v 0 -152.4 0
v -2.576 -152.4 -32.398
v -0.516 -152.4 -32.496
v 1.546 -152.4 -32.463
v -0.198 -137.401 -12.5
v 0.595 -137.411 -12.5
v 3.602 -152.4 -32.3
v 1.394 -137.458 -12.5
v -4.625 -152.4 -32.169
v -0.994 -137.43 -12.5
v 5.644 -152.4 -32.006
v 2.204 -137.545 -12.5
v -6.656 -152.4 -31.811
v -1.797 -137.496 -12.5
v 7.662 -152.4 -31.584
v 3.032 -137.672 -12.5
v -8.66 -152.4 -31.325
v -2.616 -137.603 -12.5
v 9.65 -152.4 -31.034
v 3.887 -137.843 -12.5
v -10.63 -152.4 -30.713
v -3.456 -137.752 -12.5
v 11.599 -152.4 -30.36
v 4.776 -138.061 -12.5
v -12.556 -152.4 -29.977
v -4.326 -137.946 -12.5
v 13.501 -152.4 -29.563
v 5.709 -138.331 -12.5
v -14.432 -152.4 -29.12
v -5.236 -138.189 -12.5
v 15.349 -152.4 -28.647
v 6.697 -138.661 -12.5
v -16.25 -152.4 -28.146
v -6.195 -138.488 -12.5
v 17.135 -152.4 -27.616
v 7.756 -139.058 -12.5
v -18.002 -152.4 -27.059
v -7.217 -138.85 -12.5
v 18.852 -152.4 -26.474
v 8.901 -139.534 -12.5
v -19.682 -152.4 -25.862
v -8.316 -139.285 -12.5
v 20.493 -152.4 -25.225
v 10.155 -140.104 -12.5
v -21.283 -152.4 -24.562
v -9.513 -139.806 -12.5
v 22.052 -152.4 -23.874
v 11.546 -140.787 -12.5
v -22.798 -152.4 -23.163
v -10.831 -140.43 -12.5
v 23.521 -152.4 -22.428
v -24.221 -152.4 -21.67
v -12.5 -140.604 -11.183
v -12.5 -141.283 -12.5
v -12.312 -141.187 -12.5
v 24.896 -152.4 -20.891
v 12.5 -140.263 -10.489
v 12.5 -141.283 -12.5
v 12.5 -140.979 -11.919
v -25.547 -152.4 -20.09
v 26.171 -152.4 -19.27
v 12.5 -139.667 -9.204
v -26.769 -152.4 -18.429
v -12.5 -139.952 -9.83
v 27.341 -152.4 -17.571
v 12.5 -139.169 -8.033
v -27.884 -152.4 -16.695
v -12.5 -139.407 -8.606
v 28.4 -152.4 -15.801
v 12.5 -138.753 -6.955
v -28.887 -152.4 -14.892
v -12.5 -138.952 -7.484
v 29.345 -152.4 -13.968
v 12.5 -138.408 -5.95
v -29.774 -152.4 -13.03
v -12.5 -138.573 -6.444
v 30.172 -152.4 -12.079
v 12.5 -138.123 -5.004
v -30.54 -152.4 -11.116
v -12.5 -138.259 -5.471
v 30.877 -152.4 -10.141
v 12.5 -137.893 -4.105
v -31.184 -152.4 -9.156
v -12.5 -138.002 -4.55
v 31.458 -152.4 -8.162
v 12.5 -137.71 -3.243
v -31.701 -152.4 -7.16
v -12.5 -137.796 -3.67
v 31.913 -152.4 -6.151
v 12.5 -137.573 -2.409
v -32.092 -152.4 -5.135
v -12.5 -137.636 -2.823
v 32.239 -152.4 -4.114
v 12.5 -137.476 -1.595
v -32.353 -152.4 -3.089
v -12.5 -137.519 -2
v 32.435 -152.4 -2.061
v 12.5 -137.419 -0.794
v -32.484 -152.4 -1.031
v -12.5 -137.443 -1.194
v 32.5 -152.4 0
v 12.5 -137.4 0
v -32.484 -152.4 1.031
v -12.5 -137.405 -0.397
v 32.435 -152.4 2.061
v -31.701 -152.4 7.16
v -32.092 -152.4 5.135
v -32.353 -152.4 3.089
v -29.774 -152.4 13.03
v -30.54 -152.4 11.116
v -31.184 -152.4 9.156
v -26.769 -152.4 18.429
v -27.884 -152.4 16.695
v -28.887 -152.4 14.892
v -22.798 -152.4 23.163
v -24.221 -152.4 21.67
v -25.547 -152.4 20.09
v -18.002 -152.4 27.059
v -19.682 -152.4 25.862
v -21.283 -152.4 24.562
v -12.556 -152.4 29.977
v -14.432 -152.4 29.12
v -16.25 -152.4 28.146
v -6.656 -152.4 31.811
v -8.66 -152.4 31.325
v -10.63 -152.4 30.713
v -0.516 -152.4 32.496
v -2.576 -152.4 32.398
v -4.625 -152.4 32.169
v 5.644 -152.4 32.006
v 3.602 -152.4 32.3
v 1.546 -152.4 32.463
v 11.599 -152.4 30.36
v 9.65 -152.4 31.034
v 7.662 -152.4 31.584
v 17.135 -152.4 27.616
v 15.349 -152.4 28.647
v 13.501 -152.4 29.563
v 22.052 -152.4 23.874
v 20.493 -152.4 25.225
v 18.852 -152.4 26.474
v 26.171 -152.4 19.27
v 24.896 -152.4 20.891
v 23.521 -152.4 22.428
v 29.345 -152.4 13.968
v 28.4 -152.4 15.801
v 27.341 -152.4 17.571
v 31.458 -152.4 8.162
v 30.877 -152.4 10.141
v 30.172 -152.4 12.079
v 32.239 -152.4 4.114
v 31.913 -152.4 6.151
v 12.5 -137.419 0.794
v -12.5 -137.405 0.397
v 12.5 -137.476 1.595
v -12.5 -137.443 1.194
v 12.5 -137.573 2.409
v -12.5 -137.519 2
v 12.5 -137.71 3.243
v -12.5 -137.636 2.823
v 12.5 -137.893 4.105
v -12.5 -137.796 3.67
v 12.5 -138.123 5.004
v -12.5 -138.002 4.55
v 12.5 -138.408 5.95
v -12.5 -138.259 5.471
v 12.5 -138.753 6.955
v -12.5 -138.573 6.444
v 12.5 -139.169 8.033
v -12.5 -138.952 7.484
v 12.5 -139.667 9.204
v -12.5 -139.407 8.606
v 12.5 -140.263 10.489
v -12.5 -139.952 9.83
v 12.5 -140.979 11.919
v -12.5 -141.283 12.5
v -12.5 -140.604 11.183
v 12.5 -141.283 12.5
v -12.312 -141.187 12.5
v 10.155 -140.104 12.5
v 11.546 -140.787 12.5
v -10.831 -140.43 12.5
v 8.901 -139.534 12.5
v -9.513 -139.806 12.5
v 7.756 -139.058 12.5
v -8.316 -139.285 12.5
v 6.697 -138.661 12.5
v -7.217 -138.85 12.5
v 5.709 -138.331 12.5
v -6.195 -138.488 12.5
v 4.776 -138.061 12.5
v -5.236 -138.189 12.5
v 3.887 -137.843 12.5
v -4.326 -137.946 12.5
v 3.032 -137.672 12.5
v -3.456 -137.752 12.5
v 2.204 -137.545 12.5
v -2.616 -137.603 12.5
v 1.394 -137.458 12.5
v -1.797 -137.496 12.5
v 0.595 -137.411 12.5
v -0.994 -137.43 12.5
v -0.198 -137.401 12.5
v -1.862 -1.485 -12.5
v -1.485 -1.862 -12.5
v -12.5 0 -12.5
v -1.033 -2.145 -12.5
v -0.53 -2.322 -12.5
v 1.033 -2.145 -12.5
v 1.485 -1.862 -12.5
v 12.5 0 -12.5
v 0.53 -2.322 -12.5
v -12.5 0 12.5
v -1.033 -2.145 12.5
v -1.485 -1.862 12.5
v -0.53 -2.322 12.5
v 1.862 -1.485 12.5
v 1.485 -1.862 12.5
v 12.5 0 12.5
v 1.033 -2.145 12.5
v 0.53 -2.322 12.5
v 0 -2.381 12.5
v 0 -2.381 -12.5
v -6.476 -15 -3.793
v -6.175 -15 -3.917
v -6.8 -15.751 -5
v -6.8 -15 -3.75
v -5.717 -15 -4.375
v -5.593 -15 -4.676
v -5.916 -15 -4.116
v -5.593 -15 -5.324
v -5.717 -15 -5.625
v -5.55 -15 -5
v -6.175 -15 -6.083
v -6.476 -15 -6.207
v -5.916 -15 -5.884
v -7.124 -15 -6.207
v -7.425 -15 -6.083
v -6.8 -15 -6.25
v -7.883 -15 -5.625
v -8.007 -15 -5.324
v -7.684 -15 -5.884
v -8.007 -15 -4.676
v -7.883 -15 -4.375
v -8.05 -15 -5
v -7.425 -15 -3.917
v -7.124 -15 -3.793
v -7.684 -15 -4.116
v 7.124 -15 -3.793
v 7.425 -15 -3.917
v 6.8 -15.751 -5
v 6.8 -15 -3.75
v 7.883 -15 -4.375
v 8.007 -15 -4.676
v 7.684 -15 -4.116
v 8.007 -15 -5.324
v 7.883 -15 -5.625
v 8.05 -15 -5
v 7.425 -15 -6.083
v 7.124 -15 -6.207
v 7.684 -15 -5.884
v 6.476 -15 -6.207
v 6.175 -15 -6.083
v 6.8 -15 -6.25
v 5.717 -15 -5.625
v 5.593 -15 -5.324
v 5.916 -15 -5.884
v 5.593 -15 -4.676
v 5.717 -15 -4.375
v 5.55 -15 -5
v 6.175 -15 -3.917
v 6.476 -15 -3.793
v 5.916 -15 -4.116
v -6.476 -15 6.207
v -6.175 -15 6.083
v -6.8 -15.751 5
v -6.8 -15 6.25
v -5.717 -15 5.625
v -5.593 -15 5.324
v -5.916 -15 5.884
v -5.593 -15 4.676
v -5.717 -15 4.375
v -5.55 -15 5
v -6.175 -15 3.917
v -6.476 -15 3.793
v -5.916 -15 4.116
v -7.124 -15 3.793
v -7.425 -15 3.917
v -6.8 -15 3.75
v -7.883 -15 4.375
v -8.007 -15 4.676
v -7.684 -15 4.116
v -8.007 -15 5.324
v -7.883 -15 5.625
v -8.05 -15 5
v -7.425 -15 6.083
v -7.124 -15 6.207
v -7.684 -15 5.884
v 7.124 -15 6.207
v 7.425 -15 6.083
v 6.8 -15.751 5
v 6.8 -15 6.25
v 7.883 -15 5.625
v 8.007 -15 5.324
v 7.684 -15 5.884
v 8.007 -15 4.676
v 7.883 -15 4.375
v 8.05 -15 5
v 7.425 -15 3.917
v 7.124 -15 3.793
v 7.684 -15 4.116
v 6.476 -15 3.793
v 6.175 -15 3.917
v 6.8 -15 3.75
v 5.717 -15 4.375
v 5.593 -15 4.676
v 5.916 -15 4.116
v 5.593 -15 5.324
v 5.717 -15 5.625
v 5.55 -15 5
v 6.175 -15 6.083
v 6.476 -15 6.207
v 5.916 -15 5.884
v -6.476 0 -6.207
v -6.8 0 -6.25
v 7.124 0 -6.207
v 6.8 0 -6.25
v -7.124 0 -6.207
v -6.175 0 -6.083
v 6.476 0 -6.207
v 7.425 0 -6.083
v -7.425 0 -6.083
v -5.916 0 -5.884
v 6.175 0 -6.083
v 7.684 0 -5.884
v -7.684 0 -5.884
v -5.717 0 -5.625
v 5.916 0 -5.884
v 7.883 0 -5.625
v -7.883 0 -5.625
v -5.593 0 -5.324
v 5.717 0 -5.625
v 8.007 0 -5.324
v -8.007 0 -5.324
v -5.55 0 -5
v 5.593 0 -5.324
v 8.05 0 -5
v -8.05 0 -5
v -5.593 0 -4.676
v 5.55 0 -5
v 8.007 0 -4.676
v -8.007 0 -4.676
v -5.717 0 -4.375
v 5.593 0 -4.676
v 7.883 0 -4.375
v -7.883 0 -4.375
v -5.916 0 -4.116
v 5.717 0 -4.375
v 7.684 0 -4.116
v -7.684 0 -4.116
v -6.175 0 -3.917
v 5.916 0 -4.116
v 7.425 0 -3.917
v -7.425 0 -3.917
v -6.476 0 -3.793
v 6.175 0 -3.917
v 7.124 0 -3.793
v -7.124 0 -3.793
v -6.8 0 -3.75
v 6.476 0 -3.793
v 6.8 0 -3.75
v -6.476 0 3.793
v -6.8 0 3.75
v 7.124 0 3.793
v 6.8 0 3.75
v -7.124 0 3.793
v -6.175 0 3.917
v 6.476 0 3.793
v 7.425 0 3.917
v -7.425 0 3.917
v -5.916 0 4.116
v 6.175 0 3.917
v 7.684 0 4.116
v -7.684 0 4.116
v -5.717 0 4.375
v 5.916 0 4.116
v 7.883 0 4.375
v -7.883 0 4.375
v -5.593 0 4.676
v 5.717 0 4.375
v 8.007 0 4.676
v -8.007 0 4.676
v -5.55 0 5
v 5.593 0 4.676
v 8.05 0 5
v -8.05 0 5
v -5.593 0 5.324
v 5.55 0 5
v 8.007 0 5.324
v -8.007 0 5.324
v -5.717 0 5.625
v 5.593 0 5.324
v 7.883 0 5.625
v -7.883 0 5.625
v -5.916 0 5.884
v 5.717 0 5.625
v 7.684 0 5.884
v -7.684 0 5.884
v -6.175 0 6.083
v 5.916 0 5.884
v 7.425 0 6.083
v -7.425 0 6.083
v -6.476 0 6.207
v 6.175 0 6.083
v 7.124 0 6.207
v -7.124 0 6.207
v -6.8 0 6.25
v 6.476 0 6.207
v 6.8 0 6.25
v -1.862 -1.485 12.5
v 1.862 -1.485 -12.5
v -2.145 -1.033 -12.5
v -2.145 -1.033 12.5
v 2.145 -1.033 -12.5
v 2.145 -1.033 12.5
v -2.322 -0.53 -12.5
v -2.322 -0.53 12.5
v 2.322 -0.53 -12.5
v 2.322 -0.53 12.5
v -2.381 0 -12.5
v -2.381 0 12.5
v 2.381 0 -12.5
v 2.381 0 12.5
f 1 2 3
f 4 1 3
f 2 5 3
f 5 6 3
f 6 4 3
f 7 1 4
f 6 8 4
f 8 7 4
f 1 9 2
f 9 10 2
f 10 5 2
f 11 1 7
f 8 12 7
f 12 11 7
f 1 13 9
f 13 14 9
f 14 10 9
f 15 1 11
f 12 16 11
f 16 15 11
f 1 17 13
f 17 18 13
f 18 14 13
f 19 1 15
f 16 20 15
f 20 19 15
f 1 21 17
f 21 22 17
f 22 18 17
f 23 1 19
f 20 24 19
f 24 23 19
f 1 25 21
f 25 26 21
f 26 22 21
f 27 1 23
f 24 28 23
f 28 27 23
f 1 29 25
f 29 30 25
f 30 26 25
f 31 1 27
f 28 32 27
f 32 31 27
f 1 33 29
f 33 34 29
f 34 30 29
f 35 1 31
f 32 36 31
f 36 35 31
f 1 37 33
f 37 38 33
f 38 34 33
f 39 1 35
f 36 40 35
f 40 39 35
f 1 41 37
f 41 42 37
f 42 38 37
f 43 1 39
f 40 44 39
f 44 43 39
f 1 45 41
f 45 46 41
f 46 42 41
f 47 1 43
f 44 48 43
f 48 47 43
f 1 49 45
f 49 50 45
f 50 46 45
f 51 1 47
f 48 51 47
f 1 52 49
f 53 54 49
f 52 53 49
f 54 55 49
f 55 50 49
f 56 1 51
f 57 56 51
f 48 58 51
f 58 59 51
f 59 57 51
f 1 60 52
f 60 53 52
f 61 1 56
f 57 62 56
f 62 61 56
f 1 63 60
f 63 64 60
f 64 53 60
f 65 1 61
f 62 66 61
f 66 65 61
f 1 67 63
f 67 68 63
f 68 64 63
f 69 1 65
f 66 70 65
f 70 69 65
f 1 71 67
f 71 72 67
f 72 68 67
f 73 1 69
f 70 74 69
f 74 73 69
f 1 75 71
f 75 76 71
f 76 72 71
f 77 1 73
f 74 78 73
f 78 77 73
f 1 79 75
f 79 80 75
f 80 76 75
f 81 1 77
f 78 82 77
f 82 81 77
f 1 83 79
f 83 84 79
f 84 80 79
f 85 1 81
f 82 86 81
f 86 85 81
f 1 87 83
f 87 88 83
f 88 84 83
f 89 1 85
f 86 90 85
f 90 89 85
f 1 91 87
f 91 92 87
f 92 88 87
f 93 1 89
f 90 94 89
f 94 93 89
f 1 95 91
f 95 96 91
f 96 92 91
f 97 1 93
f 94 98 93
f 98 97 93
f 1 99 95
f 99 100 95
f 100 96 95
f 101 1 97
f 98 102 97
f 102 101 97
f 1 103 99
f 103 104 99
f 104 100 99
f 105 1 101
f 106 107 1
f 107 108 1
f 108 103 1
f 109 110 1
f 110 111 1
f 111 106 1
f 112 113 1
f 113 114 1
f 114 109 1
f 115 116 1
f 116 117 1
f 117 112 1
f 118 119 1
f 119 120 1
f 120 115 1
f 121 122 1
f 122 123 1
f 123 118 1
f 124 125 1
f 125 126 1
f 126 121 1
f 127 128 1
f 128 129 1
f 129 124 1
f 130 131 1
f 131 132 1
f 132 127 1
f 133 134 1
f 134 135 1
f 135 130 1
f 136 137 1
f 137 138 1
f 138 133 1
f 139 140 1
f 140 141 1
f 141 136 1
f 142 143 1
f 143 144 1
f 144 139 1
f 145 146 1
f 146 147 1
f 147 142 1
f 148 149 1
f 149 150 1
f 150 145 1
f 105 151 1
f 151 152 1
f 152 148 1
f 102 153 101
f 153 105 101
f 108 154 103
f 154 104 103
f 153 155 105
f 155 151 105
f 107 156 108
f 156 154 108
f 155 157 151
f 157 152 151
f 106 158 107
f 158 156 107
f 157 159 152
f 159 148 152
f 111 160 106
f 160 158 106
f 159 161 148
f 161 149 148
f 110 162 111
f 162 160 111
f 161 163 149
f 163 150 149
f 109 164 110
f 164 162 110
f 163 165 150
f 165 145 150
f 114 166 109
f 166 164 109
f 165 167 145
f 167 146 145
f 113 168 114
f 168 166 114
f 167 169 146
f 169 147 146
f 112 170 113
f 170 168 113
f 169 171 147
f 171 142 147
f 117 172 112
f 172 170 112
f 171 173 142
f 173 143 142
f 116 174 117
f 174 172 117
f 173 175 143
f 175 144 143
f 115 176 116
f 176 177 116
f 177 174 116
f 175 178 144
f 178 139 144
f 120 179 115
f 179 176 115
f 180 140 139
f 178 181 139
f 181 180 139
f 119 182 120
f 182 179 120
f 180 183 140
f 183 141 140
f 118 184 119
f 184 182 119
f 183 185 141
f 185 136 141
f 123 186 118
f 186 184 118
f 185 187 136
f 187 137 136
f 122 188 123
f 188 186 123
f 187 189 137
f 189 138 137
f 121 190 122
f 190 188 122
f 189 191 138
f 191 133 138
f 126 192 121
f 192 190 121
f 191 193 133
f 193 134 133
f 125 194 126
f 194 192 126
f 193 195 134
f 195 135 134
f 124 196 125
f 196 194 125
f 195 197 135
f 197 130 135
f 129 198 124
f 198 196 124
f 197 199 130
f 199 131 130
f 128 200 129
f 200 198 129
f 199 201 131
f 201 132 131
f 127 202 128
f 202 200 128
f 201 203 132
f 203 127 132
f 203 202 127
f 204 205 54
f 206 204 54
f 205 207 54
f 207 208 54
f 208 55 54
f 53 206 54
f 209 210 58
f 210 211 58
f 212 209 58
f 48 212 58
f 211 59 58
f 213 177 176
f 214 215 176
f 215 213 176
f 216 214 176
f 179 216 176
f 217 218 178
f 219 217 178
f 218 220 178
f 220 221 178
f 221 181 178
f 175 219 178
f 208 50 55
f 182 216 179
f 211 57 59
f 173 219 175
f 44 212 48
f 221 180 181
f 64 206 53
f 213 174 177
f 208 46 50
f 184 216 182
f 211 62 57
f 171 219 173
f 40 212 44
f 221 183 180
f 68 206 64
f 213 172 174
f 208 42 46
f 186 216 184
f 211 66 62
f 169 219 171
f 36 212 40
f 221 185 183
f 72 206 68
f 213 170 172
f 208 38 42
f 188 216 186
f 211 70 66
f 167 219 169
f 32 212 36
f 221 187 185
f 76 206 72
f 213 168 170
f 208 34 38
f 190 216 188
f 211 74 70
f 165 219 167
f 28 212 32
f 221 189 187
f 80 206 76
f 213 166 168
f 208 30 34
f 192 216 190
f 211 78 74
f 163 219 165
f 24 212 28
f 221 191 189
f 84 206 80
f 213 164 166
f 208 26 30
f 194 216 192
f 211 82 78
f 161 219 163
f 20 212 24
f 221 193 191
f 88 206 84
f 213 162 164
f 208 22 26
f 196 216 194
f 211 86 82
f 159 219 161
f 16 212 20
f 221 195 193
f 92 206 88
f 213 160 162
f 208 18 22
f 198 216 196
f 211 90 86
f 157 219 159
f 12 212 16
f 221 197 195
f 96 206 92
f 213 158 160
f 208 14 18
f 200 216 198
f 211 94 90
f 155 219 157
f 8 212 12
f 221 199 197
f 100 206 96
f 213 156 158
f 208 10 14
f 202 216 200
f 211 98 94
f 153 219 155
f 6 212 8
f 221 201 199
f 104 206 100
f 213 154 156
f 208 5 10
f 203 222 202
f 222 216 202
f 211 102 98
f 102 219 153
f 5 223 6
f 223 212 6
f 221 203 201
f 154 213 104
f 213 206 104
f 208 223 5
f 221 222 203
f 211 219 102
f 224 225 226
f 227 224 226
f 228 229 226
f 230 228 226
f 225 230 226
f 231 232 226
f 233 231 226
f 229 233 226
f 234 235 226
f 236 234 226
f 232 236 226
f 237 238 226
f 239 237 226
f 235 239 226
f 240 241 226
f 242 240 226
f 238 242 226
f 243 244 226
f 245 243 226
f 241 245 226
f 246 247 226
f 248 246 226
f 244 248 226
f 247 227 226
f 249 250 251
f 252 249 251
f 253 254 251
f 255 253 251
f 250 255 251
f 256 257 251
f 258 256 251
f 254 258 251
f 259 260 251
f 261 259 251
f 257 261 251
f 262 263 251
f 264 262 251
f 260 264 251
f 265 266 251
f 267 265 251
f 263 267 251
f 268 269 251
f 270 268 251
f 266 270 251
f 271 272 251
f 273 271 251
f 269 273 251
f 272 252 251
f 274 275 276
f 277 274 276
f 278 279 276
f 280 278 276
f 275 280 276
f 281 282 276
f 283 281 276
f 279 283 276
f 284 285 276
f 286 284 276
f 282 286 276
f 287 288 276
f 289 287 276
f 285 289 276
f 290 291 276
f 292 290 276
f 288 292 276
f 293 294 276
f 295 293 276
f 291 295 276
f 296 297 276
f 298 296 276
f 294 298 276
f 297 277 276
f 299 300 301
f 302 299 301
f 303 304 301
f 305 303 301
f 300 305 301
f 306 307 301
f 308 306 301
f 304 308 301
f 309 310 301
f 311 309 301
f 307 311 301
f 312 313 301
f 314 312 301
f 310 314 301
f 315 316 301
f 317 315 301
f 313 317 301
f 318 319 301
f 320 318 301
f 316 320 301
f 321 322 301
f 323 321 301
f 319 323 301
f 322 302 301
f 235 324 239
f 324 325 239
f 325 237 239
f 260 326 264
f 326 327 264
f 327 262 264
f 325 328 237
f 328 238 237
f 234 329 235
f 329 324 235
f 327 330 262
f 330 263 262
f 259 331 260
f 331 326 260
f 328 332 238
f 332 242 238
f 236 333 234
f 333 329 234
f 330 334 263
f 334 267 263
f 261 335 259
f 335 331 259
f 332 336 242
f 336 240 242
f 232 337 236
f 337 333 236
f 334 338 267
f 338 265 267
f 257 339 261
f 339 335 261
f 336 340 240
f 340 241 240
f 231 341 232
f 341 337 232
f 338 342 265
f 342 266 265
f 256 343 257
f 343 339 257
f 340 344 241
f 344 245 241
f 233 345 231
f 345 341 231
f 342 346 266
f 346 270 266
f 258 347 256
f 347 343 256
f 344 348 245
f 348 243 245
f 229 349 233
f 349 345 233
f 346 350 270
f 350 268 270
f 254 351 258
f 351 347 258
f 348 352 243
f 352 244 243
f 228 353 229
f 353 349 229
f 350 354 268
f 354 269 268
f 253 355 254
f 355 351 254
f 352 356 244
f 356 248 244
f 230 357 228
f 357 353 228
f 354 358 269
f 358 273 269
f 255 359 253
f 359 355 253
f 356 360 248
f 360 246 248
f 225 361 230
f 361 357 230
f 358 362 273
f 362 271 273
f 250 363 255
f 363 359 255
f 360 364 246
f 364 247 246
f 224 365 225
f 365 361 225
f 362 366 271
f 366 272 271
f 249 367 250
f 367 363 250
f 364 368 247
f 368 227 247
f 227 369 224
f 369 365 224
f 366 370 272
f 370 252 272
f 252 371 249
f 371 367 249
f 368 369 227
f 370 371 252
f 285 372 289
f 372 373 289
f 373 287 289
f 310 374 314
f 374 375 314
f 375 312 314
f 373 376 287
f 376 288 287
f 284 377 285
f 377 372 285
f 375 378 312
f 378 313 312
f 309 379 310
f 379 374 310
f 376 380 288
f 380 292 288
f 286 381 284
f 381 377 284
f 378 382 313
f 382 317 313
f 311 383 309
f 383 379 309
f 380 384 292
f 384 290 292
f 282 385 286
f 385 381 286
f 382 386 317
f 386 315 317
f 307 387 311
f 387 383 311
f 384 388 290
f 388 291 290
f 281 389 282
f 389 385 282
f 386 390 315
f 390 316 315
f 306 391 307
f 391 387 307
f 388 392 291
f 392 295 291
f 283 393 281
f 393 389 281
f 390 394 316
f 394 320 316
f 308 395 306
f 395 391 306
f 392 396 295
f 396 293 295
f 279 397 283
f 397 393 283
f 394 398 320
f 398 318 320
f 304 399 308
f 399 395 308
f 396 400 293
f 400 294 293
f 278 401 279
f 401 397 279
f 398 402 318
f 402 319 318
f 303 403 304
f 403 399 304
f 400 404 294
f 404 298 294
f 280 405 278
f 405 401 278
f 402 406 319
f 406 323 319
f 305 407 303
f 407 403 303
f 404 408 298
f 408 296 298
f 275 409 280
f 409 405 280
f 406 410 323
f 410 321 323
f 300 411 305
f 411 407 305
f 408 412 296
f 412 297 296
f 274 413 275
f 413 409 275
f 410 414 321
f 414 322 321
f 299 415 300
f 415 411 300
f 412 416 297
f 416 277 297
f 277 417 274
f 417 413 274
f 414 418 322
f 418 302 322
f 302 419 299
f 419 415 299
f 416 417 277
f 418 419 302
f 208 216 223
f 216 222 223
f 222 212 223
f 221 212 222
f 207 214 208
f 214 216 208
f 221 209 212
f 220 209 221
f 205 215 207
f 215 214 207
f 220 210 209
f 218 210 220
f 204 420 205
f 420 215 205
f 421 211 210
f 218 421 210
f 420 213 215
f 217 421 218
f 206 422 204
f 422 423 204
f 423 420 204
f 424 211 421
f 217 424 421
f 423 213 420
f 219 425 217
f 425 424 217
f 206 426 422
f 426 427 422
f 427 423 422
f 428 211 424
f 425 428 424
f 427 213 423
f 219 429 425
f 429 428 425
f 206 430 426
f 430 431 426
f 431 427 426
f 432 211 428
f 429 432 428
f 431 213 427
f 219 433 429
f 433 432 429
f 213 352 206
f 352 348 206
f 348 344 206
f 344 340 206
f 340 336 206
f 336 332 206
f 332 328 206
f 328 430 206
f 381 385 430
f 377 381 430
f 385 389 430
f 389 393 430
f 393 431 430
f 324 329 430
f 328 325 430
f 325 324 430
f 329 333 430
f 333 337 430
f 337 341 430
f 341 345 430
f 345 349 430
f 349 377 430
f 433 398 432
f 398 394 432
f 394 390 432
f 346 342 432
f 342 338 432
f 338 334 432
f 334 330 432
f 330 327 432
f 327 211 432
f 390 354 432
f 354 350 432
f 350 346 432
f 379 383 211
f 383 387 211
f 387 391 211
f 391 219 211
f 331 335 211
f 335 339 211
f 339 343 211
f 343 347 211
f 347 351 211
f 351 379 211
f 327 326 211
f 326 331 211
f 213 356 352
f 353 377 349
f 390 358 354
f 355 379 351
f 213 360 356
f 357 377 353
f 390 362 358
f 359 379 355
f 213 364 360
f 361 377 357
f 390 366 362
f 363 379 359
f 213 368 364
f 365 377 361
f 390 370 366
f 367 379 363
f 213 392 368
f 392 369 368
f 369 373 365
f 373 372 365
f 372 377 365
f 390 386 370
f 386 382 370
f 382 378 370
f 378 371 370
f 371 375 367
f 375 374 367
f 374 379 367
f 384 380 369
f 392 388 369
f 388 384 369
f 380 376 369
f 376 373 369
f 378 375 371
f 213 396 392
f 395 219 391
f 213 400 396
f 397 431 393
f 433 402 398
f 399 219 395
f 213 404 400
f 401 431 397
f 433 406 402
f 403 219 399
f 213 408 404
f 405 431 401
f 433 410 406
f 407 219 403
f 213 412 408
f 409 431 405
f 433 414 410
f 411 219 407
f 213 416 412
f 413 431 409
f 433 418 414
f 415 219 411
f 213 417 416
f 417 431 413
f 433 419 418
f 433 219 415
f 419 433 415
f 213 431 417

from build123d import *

# Parameters (mm, degrees)
SKETCH1_W                       = 25
SKETCH1_H                       = 25
BOSS_EXTRUDE1_DEPTH             = 152.4
CUT_EXTRUDE1_REACH              = 47
SKETCH3_R                       = 2.38125
SKETCH4_R                       = 1
CUT_EXTRUDE2_DEPTH              = 10
TAP_DRILL_FOR_M3X0_5_TAP1_D     = 2.5
TAP_DRILL_FOR_M3X0_5_TAP1_DEPTH = 15
TAP_DRILL_FOR_M3X0_5_TAP1_TIP   = 0.751075774


with BuildPart() as part:
    # Sketch1 → Boss-Extrude1 (new body)
    with BuildSketch(Plane(origin=(0, 0, 0), x_dir=(1, 0, 0), z_dir=(0, 1, 0))):
        Rectangle(SKETCH1_W, SKETCH1_H)
    extrude(amount=-BOSS_EXTRUDE1_DEPTH)

    # Sketch2 → Revolve1 (revolve)
    with BuildSketch(Plane.XY):
        Polygon((12.5, -137.4), (32.5, -152.4), (12.5, -152.4), align=None)
    revolve(axis=Axis((0, -152.4, 0), (0, 1, 0)))

    # Sketch3 → Cut-Extrude1 (cut, up to next)
    with BuildSketch(Plane.XY.offset(12.5), mode=Mode.PRIVATE) as cut_extrude1_sk1:
        Circle(SKETCH3_R)
    cut_extrude1_tool1 = extrude(cut_extrude1_sk1.sketch, amount=-CUT_EXTRUDE1_REACH, mode=Mode.PRIVATE) & part.part
    add(cut_extrude1_tool1.solids().sort_by_distance((0, 0, 12.5))[0], mode=Mode.SUBTRACT)

    # Sketch4 → Cut-Extrude2 (cut)
    with BuildSketch(Plane(origin=(0, 0, 0), x_dir=(1, 0, 0), z_dir=(0, 1, 0))):
        with Locations((-6.8, 5)):
            Circle(SKETCH4_R)
        with Locations((6.8, 5)):
            Circle(SKETCH4_R)
        with Locations((6.8, -5)):
            Circle(SKETCH4_R)
        with Locations((-6.8, -5)):
            Circle(SKETCH4_R)
    extrude(amount=-CUT_EXTRUDE2_DEPTH, mode=Mode.SUBTRACT)

    # Tap Drill for M3x0.5 Tap1
    with Locations(Plane(origin=(0, 0, 0), x_dir=(1, 0, 0), z_dir=(0, 1, 0))):
        with Locations((-6.8, -5), (-6.8, 5), (6.8, 5), (6.8, -5)):
            Hole(TAP_DRILL_FOR_M3X0_5_TAP1_D / 2, depth=TAP_DRILL_FOR_M3X0_5_TAP1_DEPTH)
            with Locations((0, 0, -(TAP_DRILL_FOR_M3X0_5_TAP1_DEPTH + TAP_DRILL_FOR_M3X0_5_TAP1_TIP / 2))):  # 118° drill point
                Cone(0, TAP_DRILL_FOR_M3X0_5_TAP1_D / 2, TAP_DRILL_FOR_M3X0_5_TAP1_TIP, mode=Mode.SUBTRACT)


solid = part.part
